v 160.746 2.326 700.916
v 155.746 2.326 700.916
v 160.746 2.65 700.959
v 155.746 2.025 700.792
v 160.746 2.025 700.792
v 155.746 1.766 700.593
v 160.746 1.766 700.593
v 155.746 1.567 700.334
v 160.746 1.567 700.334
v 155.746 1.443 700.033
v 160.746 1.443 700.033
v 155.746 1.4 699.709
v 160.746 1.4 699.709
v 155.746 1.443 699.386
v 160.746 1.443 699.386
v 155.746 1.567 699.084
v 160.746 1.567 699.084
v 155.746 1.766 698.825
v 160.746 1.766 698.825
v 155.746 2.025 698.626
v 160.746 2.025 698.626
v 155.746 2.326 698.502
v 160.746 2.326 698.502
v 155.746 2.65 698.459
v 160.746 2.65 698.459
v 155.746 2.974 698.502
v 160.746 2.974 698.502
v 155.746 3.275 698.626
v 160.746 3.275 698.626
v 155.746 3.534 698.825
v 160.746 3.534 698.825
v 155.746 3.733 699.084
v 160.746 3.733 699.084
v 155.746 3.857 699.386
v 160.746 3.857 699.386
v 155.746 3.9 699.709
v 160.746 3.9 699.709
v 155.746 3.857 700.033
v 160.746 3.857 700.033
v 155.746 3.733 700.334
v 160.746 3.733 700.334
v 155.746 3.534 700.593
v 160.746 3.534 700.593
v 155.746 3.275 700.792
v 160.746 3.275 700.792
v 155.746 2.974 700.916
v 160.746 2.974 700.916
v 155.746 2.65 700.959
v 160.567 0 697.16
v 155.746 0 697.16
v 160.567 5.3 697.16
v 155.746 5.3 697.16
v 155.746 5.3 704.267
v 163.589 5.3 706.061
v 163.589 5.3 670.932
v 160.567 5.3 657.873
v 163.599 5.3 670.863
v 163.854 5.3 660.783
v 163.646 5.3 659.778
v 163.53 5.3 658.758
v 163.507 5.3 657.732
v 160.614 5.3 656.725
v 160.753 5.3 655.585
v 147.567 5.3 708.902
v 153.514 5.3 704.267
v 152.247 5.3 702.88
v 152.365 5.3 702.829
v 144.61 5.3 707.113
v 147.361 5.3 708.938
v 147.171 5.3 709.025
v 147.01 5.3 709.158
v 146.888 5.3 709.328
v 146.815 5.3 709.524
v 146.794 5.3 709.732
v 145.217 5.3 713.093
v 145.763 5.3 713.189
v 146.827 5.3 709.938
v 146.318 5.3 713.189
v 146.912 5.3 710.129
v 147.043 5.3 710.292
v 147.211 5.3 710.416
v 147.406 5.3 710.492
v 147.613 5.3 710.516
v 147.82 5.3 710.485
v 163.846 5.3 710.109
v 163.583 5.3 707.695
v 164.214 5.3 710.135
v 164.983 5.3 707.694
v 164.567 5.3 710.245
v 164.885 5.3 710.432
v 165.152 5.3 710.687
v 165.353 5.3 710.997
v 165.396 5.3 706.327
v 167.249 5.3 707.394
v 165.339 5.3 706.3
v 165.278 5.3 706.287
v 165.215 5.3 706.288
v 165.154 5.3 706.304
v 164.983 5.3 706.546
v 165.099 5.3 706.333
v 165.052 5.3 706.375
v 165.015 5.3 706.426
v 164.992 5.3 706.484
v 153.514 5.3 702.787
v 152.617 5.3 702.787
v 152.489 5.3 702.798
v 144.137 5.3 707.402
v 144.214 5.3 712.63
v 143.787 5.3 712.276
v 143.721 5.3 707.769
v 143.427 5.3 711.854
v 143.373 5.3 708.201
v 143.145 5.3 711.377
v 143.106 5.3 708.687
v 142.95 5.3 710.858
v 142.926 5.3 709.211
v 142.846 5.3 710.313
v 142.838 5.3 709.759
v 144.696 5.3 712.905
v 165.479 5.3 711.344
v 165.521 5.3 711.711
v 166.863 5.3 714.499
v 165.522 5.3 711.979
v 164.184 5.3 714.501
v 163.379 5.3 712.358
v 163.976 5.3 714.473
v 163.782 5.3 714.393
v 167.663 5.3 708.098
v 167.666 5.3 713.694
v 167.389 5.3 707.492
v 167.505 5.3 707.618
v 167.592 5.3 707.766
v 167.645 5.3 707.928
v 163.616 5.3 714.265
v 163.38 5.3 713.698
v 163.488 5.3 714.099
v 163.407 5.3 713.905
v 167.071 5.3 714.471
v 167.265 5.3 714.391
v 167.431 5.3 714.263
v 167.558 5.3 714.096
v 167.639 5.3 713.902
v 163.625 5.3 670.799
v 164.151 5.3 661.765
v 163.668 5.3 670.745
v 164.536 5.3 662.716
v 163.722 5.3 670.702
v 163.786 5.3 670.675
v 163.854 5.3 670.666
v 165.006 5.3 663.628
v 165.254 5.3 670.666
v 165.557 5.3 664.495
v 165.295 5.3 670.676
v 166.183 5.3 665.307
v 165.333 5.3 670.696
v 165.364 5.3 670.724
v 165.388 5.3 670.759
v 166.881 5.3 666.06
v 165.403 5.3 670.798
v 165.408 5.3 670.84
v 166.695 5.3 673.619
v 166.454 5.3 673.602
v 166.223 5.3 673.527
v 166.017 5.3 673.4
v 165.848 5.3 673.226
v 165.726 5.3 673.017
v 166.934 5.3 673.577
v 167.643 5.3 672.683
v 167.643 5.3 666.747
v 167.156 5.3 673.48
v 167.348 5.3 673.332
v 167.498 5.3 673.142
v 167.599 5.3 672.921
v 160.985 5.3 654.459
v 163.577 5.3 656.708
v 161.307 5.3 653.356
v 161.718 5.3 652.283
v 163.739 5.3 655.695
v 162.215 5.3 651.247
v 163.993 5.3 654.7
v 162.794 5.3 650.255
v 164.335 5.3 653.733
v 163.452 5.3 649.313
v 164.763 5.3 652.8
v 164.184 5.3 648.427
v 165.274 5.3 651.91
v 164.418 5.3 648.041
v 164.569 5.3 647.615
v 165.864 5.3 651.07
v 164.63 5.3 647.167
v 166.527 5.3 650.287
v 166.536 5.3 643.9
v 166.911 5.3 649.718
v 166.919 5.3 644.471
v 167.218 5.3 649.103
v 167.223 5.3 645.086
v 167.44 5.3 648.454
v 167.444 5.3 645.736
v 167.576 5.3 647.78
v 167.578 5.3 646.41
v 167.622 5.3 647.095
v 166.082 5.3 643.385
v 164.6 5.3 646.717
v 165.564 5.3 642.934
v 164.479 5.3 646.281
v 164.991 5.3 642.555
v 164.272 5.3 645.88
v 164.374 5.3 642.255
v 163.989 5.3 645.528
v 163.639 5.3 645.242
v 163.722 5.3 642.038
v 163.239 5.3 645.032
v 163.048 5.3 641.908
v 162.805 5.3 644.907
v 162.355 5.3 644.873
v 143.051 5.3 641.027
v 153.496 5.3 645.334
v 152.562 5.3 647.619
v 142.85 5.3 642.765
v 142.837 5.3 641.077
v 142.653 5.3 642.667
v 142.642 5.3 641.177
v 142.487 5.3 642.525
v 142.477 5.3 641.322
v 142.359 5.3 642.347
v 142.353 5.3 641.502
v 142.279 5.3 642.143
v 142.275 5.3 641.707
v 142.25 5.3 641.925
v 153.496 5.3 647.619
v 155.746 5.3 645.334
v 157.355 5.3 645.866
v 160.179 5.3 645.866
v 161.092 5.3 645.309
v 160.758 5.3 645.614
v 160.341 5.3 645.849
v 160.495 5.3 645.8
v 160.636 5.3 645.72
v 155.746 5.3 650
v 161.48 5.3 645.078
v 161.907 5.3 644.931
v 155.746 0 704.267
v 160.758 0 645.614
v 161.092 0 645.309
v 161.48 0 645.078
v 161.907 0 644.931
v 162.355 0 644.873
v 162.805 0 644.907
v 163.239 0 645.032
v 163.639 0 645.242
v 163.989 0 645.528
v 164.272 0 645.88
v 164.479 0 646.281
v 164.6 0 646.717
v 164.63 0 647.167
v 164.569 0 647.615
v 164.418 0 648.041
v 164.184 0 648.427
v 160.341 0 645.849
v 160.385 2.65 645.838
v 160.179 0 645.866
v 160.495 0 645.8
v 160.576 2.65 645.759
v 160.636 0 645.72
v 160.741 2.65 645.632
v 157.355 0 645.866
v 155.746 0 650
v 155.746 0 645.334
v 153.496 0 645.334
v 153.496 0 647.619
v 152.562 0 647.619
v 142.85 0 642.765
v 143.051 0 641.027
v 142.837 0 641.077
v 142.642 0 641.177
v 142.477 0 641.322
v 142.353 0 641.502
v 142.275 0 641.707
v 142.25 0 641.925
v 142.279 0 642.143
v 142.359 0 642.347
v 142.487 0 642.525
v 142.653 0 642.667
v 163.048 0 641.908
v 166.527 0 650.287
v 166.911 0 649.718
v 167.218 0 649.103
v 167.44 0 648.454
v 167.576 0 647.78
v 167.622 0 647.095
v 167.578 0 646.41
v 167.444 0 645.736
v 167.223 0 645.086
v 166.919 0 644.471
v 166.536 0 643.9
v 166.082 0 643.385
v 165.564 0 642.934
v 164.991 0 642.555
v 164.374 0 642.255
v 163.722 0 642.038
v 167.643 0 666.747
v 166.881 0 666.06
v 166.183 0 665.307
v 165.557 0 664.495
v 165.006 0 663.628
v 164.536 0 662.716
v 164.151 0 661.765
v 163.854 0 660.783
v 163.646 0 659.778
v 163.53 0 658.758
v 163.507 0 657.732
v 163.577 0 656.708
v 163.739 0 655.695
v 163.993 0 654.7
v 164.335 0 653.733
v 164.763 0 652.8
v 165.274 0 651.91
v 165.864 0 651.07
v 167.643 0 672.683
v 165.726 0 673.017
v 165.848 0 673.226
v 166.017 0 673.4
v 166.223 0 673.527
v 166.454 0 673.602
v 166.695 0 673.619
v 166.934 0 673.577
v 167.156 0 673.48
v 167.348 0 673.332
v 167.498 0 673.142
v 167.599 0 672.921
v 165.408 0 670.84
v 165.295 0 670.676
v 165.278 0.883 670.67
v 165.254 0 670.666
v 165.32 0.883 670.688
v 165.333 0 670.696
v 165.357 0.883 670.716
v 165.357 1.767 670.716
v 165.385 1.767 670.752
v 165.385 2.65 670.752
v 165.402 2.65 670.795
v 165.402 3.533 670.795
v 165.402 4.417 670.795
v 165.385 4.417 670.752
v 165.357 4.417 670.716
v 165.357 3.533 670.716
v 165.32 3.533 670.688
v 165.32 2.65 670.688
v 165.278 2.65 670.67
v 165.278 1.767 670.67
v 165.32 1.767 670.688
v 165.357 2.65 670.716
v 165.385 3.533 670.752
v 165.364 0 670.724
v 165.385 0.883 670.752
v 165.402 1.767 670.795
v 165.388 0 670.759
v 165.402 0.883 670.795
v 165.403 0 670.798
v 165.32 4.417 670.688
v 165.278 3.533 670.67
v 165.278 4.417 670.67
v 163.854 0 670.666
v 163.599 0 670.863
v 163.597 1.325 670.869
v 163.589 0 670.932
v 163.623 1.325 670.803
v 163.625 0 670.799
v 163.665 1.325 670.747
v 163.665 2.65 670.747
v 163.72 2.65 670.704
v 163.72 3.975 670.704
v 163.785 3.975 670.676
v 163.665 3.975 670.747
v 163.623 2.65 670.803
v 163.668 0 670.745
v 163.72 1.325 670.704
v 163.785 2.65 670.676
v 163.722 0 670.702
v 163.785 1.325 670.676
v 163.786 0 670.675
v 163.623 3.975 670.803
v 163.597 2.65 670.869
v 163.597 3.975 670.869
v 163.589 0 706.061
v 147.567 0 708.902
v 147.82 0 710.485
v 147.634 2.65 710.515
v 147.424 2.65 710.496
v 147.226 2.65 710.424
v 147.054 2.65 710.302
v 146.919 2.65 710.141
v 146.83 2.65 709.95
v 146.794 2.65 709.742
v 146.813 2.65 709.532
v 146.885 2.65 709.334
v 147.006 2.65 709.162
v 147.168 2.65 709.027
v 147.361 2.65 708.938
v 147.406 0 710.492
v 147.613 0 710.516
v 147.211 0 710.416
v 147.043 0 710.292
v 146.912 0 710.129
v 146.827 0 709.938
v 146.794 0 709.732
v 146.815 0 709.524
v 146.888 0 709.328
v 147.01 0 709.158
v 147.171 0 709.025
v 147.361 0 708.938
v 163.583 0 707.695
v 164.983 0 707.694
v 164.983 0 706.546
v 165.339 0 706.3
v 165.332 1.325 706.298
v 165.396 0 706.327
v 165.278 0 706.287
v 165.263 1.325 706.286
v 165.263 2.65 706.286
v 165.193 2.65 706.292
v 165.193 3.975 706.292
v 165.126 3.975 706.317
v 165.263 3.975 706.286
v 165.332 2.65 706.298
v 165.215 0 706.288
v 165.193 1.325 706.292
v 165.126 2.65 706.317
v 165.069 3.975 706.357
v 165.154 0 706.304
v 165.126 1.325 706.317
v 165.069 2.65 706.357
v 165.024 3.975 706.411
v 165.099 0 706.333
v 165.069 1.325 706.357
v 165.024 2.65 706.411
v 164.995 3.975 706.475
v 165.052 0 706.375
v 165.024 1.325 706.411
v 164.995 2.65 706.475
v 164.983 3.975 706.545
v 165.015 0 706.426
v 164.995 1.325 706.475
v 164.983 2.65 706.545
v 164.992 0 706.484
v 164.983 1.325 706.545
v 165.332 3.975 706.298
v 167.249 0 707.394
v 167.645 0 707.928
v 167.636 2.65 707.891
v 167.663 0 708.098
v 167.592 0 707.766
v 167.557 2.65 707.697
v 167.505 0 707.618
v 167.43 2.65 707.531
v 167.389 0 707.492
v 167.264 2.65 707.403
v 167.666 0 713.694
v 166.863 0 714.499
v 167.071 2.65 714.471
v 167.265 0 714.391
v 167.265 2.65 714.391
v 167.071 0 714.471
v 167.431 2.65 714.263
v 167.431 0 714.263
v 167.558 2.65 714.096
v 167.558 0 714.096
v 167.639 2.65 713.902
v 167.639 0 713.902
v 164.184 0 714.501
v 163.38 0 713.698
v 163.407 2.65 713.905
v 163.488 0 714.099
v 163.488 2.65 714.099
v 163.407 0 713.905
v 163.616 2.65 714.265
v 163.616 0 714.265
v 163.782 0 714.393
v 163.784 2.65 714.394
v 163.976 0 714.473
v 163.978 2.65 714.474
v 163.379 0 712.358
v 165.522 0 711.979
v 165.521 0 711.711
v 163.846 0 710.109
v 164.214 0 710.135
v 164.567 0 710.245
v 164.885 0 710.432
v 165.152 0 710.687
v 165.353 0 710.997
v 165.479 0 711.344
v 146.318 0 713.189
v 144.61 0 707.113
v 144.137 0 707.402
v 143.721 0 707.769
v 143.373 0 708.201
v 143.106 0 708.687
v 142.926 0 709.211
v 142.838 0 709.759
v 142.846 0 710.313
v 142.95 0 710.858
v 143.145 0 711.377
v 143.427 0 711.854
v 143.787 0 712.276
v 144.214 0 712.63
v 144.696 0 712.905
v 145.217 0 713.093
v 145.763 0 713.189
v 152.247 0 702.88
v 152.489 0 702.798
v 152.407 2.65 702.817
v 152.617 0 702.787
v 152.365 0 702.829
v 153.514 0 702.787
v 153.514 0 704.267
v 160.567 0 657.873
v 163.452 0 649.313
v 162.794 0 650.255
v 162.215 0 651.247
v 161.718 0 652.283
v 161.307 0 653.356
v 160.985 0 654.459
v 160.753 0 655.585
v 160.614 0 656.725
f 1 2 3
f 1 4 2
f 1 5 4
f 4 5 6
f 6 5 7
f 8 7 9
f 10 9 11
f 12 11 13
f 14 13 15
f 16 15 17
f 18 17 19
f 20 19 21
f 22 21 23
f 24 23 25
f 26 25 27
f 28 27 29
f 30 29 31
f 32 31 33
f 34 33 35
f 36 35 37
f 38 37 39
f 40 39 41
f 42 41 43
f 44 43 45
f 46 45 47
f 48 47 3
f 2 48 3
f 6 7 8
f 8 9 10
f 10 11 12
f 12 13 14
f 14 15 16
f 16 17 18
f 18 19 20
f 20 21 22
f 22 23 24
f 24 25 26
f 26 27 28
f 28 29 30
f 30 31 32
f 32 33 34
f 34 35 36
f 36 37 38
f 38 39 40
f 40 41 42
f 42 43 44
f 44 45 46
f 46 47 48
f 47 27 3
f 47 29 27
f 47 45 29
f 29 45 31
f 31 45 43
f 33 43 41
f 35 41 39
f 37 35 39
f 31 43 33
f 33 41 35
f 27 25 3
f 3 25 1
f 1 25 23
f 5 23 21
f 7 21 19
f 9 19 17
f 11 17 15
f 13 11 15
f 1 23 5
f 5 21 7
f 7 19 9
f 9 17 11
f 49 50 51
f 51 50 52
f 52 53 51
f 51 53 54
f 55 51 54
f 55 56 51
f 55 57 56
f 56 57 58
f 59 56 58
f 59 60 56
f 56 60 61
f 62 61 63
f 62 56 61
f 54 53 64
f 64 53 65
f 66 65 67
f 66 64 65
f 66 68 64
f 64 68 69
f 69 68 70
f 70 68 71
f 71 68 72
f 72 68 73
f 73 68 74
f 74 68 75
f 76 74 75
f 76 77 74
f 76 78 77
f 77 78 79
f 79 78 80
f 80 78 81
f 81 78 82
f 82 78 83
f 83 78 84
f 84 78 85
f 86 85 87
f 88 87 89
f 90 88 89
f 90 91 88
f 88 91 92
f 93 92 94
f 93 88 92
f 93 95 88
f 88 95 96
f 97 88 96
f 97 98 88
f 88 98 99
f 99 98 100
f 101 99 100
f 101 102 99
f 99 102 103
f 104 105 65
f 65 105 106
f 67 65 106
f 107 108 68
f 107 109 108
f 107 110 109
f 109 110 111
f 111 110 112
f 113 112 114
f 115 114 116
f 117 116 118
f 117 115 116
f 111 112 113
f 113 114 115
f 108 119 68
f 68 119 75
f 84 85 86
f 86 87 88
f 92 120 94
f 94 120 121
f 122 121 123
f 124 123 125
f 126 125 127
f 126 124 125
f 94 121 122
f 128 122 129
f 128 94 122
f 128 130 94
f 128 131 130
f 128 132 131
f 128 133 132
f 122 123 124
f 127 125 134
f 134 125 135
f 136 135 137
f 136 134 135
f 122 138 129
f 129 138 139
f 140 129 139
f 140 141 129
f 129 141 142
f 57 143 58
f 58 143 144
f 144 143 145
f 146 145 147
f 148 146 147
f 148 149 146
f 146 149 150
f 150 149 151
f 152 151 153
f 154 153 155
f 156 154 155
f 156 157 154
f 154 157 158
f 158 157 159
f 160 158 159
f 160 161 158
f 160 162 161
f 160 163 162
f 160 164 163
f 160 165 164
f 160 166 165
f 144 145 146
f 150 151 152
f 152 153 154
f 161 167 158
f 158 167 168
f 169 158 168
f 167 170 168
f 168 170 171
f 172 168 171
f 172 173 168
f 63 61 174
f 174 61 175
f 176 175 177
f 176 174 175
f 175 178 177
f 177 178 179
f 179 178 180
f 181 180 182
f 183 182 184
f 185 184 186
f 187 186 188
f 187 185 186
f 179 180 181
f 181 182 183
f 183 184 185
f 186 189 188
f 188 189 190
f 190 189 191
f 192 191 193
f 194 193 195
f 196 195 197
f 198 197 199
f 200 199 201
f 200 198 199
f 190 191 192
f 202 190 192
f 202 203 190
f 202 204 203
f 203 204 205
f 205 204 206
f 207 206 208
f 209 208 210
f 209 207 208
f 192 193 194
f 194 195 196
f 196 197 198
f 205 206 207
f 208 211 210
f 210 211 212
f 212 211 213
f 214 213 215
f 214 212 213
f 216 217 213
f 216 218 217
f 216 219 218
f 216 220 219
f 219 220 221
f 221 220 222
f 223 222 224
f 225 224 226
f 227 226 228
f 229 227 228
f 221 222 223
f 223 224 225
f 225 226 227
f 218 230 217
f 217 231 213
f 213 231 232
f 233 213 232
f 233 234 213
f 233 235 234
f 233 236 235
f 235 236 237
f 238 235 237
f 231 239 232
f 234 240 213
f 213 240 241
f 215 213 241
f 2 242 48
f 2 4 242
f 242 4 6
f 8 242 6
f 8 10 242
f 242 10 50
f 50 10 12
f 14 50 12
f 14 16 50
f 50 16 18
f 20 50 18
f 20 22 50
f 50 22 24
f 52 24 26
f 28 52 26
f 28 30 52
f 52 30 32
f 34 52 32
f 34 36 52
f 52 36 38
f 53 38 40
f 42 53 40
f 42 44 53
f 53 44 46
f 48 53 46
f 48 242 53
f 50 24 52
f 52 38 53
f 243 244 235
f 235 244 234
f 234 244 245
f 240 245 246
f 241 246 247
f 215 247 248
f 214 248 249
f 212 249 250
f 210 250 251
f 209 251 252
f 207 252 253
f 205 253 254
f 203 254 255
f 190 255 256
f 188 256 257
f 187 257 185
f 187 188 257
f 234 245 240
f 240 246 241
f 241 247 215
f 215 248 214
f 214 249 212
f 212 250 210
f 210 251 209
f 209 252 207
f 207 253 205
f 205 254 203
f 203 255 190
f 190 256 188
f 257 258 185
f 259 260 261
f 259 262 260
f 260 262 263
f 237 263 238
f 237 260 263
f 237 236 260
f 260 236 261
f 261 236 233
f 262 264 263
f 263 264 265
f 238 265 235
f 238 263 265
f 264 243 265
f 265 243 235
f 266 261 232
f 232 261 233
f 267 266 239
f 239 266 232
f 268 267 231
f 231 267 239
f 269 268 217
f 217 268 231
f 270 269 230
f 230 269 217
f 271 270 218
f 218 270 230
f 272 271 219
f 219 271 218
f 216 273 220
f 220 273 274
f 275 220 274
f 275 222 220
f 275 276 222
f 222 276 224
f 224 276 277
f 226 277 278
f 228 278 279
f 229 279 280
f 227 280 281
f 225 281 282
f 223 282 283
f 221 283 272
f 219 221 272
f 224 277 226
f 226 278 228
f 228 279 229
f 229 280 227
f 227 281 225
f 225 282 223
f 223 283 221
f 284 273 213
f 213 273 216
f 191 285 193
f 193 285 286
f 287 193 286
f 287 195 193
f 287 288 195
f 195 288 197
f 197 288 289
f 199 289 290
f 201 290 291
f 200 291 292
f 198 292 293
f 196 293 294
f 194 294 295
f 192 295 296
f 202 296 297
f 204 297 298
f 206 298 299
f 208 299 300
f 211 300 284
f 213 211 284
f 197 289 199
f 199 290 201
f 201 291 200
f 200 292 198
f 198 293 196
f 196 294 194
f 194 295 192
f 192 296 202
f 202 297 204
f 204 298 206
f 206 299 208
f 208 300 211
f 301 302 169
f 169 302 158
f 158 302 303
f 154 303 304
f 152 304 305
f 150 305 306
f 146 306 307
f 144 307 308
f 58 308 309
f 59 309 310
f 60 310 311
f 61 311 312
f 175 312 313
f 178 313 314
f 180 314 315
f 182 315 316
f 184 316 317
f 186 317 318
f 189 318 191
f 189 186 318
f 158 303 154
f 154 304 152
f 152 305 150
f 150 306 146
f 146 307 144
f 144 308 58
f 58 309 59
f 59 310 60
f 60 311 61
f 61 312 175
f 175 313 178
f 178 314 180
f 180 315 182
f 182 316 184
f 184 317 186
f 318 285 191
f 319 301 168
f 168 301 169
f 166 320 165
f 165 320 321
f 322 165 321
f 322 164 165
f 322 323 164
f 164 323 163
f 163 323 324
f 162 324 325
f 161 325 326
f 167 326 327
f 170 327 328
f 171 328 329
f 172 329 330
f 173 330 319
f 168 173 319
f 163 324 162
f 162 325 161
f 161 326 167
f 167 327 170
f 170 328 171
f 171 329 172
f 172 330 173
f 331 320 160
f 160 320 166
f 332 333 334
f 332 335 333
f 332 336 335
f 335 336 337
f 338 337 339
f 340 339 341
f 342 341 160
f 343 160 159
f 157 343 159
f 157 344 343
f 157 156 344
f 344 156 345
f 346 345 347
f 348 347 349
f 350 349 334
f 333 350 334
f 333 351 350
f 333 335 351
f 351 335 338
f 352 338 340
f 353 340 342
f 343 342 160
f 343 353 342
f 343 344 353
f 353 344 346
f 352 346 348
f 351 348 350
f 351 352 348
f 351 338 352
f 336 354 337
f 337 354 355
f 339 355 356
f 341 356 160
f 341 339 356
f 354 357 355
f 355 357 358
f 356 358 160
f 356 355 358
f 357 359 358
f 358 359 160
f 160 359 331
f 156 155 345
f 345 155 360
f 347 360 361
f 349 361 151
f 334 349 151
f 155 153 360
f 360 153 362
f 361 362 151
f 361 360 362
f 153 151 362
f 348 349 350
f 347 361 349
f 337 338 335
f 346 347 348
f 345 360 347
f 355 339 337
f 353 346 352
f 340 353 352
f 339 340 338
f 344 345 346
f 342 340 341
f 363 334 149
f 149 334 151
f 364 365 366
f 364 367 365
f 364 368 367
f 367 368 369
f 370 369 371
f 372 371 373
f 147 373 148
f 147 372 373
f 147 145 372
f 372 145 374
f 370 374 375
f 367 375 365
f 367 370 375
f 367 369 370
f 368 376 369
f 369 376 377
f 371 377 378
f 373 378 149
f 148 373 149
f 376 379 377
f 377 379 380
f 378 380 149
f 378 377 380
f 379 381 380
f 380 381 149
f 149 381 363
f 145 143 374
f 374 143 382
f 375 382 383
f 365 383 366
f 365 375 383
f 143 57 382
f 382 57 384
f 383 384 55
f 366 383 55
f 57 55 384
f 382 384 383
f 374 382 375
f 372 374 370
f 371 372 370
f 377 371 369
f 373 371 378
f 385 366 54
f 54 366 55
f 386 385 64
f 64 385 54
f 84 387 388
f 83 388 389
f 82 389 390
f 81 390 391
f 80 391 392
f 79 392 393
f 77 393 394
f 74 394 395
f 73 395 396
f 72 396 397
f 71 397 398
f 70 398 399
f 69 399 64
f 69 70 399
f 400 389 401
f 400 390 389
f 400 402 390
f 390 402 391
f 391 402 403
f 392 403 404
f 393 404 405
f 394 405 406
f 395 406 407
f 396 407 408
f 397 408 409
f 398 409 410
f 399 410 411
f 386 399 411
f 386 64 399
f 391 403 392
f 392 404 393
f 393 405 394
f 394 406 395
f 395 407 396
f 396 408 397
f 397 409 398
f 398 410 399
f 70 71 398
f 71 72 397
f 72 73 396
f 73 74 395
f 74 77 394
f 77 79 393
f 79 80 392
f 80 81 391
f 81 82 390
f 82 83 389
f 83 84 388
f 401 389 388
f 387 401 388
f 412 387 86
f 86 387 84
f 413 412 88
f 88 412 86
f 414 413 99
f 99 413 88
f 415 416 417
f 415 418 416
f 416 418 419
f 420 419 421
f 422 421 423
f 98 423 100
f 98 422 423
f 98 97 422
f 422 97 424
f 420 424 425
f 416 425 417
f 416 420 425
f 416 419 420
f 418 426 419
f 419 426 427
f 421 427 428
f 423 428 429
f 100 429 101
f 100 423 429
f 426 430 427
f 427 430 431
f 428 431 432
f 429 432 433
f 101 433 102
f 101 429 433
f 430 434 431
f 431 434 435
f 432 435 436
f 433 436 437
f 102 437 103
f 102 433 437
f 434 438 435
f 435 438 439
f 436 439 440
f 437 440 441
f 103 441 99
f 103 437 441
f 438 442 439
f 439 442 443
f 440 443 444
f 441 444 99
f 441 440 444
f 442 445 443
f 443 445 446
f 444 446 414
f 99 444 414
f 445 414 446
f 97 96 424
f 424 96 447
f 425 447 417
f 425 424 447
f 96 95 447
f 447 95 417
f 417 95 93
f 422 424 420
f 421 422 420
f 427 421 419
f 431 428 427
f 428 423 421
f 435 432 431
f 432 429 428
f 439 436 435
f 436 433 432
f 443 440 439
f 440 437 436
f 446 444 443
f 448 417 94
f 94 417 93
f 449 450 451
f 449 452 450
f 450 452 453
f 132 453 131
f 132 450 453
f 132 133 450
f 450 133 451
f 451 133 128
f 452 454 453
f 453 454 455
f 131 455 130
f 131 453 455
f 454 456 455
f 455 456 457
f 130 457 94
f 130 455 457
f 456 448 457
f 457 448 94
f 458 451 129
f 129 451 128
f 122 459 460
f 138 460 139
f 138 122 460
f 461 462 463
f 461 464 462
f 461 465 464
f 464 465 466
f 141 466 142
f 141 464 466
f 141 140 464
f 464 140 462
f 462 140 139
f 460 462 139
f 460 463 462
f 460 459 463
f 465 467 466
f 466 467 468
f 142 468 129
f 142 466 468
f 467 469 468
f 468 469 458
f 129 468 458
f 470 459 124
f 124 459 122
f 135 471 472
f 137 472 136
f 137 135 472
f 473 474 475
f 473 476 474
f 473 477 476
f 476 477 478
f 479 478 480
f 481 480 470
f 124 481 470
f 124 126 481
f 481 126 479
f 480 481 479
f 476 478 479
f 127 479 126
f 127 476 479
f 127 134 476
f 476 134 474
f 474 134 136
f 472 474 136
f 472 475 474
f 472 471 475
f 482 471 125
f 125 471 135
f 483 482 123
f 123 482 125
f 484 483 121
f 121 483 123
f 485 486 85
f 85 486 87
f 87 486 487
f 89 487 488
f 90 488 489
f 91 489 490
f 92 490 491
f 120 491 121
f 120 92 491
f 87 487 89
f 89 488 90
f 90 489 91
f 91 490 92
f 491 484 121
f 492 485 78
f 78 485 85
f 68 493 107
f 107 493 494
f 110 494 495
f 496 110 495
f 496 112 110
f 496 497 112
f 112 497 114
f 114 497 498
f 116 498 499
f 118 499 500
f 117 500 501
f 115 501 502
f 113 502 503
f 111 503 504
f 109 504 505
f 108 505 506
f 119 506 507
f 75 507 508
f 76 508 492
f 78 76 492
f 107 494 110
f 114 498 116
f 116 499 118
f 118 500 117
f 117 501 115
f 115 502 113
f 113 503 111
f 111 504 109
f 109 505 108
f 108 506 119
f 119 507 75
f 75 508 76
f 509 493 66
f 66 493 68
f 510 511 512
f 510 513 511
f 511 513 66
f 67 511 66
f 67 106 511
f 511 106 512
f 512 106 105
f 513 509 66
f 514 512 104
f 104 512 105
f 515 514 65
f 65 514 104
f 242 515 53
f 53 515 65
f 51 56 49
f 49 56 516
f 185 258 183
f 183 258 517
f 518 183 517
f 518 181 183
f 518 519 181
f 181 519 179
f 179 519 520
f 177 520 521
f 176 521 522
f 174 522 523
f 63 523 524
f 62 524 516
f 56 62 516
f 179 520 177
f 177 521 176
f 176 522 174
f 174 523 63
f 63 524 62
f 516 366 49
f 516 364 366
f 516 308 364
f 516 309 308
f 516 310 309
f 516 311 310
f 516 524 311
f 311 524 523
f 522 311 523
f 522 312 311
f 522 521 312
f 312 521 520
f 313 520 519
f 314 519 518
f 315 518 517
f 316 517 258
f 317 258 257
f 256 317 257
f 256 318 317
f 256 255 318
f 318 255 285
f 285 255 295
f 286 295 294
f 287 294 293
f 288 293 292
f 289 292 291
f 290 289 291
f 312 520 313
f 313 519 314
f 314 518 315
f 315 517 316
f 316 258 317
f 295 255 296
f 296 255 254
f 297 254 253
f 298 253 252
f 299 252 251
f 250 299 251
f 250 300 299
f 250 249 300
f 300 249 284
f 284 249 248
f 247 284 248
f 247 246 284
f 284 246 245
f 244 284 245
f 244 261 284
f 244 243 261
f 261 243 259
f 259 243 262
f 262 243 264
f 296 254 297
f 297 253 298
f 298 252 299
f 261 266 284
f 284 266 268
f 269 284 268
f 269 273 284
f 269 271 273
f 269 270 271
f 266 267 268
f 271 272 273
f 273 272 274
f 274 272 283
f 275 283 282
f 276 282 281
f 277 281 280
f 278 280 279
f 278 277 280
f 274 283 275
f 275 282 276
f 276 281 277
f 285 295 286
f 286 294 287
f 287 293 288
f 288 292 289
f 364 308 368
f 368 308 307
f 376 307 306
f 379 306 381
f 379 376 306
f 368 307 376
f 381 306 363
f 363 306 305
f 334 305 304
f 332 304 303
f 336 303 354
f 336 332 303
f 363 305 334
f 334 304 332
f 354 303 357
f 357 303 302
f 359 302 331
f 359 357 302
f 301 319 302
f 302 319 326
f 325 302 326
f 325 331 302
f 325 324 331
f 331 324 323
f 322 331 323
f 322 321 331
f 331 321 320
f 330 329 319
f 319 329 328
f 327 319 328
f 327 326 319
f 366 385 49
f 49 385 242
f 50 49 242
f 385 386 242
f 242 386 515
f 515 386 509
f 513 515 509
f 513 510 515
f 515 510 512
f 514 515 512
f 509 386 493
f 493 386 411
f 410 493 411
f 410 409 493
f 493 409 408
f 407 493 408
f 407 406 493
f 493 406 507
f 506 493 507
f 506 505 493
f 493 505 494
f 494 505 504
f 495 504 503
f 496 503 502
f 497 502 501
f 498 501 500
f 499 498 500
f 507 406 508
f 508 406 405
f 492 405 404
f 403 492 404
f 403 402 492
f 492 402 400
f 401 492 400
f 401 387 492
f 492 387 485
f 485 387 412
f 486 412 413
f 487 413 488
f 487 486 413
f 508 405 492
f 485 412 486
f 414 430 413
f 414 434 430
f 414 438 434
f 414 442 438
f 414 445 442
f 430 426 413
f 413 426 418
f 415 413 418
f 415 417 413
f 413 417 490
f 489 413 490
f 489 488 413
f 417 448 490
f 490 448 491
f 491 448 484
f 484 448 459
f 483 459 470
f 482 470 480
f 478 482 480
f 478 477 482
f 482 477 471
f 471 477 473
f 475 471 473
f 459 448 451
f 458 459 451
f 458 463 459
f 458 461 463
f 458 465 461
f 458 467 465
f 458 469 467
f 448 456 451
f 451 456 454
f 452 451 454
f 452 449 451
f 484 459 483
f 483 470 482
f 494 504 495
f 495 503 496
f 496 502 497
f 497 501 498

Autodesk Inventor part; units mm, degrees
ref_plane "YZ Plane" through (0, 0, 0) normal (1, 0, 0) x (0, 1, 0)
ref_plane "XZ Plane" through (0, 0, 0) normal (0, 1, 0) x (-1, 0, 0)
ref_plane "XY Plane" through (0, 0, 0) normal (0, 0, 1) x (1, 0, 0)
sketch "Sketch1" plane through (0, 0, 0) normal (0, 1, 0) x (-1, 0, 0)
  arc A0 (-159.7794, 702.6597) -> (-160.5669, 701.8721) centre (-159.7794, 701.8721) ccw
  line L0 (-155.7462, 702.6597) -> (-155.7462, 704.2667)
  line L1 (-155.7462, 704.2667) -> (-153.5139, 704.2667)
  line L2 (-153.5139, 704.2667) -> (-153.5139, 702.7873)
  line L3 (-153.5139, 702.7873) -> (-152.617, 702.7873)
  arc A1 (-164.1836, 648.4268) -> (-160.5669, 657.8731) centre (-174.7114, 657.8731) ccw
  line L4 (-160.5669, 657.8731) -> (-160.5669, 701.8721)
  arc A2 (-160.1794, 645.8656) -> (-160.7583, 645.6139) centre (-160.1783, 645.0714) ccw
  arc A3 (-164.1836, 648.4268) -> (-160.7583, 645.6139) centre (-162.4137, 647.0901) ccw
  line L5 (-155.7462, 648) -> (-155.7462, 645.3343)
  line L6 (-155.7462, 645.3343) -> (-153.4959, 645.3343)
  line L7 (-153.4959, 645.3343) -> (-153.4959, 647.6194)
  arc A4 (-143.0505, 641.0266) -> (-142.8499, 642.7649) centre (-143.1474, 641.9185) ccw
  line L8 (-163.0481, 641.9081) -> (-143.0505, 641.0266)
  arc A5 (-166.527, 650.2868) -> (-163.0481, 641.9081) centre (-162.4027, 647.0877) ccw
  arc A6 (-166.527, 650.2868) -> (-167.6435, 666.7468) centre (-174.834, 657.9912) ccw
  arc A7 (-163.8545, 670.6656) -> (-163.5889, 670.9316) centre (-163.8582, 670.9349) ccw
  line L9 (-163.5889, 706.0242) -> (-163.5889, 706.0613)
  line L10 (-163.5889, 706.0613) -> (-147.5669, 708.9022)
  arc A8 (-147.5669, 708.9022) -> (-147.8202, 710.4852) centre (-147.6004, 709.7086) ccw
  line L11 (-147.8202, 710.4852) -> (-163.5831, 707.6952)
  line L12 (-163.5831, 707.6952) -> (-164.9831, 707.6944)
  line L13 (-164.9831, 707.6944) -> (-164.9826, 706.5463)
  arc A9 (-165.396, 706.3271) -> (-164.9826, 706.5463) centre (-165.2521, 706.5552) ccw
  line L14 (-165.396, 706.3271) -> (-167.2486, 707.3943)
  arc A10 (-167.6628, 708.0983) -> (-167.2486, 707.3943) centre (-166.8615, 708.0959) ccw
  line L15 (-167.6628, 708.0983) -> (-167.6658, 713.6939)
  arc A11 (-166.8627, 714.4991) -> (-167.6658, 713.6939) centre (-166.8611, 713.6943) ccw
  line L16 (-166.8627, 714.4991) -> (-164.1837, 714.5007)
  arc A12 (-163.3795, 713.6976) -> (-164.1837, 714.5007) centre (-164.1848, 713.6954) ccw
  line L17 (-163.3795, 713.6976) -> (-163.3787, 712.3581)
  line L18 (-163.3787, 712.3581) -> (-165.5216, 711.9789)
  line L19 (-165.5216, 711.9789) -> (-165.5215, 711.7106)
  arc A13 (-165.5215, 711.7106) -> (-163.8456, 710.1095) centre (-163.9177, 711.7116) ccw
  line L20 (-163.8456, 710.1095) -> (-146.318, 713.1891)
  arc A14 (-144.6103, 707.1134) -> (-146.318, 713.1891) centre (-146.0422, 709.9888) ccw
  arc A15 (-152.617, 702.7873) -> (-152.2474, 702.8795) centre (-152.6236, 703.6003) ccw
  line L21 (-155.7462, 702.6597) -> (-155.7462, 700.1597)
  line L22 (-155.7462, 700.1597) -> (-156.9462, 700.1597)
  line L23 (-156.9462, 700.1597) -> (-157.7628, 702.6597)
  line L24 (-157.7628, 702.6597) -> (-159.7794, 702.6597)
  line L25 (-155.7462, 648) -> (-155.7462, 650)
  line L26 (-155.7462, 650) -> (-157.3545, 645.8656)
  line L27 (-157.3545, 645.8656) -> (-160.1794, 645.8656)
  line L28 (-144.6103, 707.1134) -> (-152.2474, 702.8795)
  line L29 (-152.5619, 647.6194) -> (-153.4959, 647.6194)
  line L30 (-163.8545, 670.6656) -> (-165.2545, 670.6656)
  arc A16 (-165.4084, 670.8401) -> (-165.2545, 670.6656) centre (-165.2322, 670.8403) ccw
  line L31 (-163.5889, 670.9316) -> (-163.5889, 706.0613)
  line L32 (-165.4084, 670.8401) -> (-165.7258, 673.0171)
  line L33 (-167.6435, 666.7468) -> (-167.6435, 672.6833)
  line L34 (-142.8499, 642.7649) -> (-152.5619, 647.6194)
  arc A17 (-165.7258, 673.0171) -> (-167.6435, 672.6833) centre (-166.6444, 672.619) ccw
  point P0 (-160.5669, 683.588)
  dimension "d2" = 43.999
  dimension "d6" = 2.5
  dimension "d7" = 1.2
  dimension "d8" = 2
  dimension "d18" = 1.4
  dimension "d20" = 2.2
  dimension "d21" = 1.4
  dimension "d22" = 4.0546
extrude "Extrusion1" add sketch "Sketch1" along normal blind 5.3
sketch "Sketch2" plane through (0, 0, 0) normal (0, -1, 0) x (1, 0, 0)
  line L0 (156.9462, 700.1597) -> (155.7462, 700.1597) projected
  line L1 (155.7462, 700.1597) -> (155.7462, 697.1597)
  line L2 (155.7462, 697.1597) -> (160.5669, 697.1597)
  line L3 (160.5669, 657.8731) -> (160.5669, 701.8721) projected
  line L4 (160.5669, 697.1597) -> (160.5783, 702.6397)
  line L5 (160.5783, 702.6397) -> (155.7462, 704.198)
  line L6 (155.7462, 704.198) -> (155.7462, 700.1597)
  point P0 (0, 0)
  dimension "d9" = 3
extrude "Extrusion2" add sketch "Sketch2" against normal blind 5.3
sketch "Sketch3" plane through (155.7462, 0, 704.2667) normal (-1, 0, 0) x (0, 0, 1)
  circle A0 centre (-4.5576, 2.65) radius 1.25
  line L0 (-7.107, 5.3) -> (0, 5.3) projected
  line L1 (0, 0) -> (-7.107, 0) projected
  point P0 (-704.2667, 0)
  dimension "d12" = 2.5
  dimension "d14" = 2.65
  dimension "d15" = 2.65
extrude "Extrusion3" cut sketch "Sketch3" against normal blind 5
properties part number "raspDinClipmmv4"
